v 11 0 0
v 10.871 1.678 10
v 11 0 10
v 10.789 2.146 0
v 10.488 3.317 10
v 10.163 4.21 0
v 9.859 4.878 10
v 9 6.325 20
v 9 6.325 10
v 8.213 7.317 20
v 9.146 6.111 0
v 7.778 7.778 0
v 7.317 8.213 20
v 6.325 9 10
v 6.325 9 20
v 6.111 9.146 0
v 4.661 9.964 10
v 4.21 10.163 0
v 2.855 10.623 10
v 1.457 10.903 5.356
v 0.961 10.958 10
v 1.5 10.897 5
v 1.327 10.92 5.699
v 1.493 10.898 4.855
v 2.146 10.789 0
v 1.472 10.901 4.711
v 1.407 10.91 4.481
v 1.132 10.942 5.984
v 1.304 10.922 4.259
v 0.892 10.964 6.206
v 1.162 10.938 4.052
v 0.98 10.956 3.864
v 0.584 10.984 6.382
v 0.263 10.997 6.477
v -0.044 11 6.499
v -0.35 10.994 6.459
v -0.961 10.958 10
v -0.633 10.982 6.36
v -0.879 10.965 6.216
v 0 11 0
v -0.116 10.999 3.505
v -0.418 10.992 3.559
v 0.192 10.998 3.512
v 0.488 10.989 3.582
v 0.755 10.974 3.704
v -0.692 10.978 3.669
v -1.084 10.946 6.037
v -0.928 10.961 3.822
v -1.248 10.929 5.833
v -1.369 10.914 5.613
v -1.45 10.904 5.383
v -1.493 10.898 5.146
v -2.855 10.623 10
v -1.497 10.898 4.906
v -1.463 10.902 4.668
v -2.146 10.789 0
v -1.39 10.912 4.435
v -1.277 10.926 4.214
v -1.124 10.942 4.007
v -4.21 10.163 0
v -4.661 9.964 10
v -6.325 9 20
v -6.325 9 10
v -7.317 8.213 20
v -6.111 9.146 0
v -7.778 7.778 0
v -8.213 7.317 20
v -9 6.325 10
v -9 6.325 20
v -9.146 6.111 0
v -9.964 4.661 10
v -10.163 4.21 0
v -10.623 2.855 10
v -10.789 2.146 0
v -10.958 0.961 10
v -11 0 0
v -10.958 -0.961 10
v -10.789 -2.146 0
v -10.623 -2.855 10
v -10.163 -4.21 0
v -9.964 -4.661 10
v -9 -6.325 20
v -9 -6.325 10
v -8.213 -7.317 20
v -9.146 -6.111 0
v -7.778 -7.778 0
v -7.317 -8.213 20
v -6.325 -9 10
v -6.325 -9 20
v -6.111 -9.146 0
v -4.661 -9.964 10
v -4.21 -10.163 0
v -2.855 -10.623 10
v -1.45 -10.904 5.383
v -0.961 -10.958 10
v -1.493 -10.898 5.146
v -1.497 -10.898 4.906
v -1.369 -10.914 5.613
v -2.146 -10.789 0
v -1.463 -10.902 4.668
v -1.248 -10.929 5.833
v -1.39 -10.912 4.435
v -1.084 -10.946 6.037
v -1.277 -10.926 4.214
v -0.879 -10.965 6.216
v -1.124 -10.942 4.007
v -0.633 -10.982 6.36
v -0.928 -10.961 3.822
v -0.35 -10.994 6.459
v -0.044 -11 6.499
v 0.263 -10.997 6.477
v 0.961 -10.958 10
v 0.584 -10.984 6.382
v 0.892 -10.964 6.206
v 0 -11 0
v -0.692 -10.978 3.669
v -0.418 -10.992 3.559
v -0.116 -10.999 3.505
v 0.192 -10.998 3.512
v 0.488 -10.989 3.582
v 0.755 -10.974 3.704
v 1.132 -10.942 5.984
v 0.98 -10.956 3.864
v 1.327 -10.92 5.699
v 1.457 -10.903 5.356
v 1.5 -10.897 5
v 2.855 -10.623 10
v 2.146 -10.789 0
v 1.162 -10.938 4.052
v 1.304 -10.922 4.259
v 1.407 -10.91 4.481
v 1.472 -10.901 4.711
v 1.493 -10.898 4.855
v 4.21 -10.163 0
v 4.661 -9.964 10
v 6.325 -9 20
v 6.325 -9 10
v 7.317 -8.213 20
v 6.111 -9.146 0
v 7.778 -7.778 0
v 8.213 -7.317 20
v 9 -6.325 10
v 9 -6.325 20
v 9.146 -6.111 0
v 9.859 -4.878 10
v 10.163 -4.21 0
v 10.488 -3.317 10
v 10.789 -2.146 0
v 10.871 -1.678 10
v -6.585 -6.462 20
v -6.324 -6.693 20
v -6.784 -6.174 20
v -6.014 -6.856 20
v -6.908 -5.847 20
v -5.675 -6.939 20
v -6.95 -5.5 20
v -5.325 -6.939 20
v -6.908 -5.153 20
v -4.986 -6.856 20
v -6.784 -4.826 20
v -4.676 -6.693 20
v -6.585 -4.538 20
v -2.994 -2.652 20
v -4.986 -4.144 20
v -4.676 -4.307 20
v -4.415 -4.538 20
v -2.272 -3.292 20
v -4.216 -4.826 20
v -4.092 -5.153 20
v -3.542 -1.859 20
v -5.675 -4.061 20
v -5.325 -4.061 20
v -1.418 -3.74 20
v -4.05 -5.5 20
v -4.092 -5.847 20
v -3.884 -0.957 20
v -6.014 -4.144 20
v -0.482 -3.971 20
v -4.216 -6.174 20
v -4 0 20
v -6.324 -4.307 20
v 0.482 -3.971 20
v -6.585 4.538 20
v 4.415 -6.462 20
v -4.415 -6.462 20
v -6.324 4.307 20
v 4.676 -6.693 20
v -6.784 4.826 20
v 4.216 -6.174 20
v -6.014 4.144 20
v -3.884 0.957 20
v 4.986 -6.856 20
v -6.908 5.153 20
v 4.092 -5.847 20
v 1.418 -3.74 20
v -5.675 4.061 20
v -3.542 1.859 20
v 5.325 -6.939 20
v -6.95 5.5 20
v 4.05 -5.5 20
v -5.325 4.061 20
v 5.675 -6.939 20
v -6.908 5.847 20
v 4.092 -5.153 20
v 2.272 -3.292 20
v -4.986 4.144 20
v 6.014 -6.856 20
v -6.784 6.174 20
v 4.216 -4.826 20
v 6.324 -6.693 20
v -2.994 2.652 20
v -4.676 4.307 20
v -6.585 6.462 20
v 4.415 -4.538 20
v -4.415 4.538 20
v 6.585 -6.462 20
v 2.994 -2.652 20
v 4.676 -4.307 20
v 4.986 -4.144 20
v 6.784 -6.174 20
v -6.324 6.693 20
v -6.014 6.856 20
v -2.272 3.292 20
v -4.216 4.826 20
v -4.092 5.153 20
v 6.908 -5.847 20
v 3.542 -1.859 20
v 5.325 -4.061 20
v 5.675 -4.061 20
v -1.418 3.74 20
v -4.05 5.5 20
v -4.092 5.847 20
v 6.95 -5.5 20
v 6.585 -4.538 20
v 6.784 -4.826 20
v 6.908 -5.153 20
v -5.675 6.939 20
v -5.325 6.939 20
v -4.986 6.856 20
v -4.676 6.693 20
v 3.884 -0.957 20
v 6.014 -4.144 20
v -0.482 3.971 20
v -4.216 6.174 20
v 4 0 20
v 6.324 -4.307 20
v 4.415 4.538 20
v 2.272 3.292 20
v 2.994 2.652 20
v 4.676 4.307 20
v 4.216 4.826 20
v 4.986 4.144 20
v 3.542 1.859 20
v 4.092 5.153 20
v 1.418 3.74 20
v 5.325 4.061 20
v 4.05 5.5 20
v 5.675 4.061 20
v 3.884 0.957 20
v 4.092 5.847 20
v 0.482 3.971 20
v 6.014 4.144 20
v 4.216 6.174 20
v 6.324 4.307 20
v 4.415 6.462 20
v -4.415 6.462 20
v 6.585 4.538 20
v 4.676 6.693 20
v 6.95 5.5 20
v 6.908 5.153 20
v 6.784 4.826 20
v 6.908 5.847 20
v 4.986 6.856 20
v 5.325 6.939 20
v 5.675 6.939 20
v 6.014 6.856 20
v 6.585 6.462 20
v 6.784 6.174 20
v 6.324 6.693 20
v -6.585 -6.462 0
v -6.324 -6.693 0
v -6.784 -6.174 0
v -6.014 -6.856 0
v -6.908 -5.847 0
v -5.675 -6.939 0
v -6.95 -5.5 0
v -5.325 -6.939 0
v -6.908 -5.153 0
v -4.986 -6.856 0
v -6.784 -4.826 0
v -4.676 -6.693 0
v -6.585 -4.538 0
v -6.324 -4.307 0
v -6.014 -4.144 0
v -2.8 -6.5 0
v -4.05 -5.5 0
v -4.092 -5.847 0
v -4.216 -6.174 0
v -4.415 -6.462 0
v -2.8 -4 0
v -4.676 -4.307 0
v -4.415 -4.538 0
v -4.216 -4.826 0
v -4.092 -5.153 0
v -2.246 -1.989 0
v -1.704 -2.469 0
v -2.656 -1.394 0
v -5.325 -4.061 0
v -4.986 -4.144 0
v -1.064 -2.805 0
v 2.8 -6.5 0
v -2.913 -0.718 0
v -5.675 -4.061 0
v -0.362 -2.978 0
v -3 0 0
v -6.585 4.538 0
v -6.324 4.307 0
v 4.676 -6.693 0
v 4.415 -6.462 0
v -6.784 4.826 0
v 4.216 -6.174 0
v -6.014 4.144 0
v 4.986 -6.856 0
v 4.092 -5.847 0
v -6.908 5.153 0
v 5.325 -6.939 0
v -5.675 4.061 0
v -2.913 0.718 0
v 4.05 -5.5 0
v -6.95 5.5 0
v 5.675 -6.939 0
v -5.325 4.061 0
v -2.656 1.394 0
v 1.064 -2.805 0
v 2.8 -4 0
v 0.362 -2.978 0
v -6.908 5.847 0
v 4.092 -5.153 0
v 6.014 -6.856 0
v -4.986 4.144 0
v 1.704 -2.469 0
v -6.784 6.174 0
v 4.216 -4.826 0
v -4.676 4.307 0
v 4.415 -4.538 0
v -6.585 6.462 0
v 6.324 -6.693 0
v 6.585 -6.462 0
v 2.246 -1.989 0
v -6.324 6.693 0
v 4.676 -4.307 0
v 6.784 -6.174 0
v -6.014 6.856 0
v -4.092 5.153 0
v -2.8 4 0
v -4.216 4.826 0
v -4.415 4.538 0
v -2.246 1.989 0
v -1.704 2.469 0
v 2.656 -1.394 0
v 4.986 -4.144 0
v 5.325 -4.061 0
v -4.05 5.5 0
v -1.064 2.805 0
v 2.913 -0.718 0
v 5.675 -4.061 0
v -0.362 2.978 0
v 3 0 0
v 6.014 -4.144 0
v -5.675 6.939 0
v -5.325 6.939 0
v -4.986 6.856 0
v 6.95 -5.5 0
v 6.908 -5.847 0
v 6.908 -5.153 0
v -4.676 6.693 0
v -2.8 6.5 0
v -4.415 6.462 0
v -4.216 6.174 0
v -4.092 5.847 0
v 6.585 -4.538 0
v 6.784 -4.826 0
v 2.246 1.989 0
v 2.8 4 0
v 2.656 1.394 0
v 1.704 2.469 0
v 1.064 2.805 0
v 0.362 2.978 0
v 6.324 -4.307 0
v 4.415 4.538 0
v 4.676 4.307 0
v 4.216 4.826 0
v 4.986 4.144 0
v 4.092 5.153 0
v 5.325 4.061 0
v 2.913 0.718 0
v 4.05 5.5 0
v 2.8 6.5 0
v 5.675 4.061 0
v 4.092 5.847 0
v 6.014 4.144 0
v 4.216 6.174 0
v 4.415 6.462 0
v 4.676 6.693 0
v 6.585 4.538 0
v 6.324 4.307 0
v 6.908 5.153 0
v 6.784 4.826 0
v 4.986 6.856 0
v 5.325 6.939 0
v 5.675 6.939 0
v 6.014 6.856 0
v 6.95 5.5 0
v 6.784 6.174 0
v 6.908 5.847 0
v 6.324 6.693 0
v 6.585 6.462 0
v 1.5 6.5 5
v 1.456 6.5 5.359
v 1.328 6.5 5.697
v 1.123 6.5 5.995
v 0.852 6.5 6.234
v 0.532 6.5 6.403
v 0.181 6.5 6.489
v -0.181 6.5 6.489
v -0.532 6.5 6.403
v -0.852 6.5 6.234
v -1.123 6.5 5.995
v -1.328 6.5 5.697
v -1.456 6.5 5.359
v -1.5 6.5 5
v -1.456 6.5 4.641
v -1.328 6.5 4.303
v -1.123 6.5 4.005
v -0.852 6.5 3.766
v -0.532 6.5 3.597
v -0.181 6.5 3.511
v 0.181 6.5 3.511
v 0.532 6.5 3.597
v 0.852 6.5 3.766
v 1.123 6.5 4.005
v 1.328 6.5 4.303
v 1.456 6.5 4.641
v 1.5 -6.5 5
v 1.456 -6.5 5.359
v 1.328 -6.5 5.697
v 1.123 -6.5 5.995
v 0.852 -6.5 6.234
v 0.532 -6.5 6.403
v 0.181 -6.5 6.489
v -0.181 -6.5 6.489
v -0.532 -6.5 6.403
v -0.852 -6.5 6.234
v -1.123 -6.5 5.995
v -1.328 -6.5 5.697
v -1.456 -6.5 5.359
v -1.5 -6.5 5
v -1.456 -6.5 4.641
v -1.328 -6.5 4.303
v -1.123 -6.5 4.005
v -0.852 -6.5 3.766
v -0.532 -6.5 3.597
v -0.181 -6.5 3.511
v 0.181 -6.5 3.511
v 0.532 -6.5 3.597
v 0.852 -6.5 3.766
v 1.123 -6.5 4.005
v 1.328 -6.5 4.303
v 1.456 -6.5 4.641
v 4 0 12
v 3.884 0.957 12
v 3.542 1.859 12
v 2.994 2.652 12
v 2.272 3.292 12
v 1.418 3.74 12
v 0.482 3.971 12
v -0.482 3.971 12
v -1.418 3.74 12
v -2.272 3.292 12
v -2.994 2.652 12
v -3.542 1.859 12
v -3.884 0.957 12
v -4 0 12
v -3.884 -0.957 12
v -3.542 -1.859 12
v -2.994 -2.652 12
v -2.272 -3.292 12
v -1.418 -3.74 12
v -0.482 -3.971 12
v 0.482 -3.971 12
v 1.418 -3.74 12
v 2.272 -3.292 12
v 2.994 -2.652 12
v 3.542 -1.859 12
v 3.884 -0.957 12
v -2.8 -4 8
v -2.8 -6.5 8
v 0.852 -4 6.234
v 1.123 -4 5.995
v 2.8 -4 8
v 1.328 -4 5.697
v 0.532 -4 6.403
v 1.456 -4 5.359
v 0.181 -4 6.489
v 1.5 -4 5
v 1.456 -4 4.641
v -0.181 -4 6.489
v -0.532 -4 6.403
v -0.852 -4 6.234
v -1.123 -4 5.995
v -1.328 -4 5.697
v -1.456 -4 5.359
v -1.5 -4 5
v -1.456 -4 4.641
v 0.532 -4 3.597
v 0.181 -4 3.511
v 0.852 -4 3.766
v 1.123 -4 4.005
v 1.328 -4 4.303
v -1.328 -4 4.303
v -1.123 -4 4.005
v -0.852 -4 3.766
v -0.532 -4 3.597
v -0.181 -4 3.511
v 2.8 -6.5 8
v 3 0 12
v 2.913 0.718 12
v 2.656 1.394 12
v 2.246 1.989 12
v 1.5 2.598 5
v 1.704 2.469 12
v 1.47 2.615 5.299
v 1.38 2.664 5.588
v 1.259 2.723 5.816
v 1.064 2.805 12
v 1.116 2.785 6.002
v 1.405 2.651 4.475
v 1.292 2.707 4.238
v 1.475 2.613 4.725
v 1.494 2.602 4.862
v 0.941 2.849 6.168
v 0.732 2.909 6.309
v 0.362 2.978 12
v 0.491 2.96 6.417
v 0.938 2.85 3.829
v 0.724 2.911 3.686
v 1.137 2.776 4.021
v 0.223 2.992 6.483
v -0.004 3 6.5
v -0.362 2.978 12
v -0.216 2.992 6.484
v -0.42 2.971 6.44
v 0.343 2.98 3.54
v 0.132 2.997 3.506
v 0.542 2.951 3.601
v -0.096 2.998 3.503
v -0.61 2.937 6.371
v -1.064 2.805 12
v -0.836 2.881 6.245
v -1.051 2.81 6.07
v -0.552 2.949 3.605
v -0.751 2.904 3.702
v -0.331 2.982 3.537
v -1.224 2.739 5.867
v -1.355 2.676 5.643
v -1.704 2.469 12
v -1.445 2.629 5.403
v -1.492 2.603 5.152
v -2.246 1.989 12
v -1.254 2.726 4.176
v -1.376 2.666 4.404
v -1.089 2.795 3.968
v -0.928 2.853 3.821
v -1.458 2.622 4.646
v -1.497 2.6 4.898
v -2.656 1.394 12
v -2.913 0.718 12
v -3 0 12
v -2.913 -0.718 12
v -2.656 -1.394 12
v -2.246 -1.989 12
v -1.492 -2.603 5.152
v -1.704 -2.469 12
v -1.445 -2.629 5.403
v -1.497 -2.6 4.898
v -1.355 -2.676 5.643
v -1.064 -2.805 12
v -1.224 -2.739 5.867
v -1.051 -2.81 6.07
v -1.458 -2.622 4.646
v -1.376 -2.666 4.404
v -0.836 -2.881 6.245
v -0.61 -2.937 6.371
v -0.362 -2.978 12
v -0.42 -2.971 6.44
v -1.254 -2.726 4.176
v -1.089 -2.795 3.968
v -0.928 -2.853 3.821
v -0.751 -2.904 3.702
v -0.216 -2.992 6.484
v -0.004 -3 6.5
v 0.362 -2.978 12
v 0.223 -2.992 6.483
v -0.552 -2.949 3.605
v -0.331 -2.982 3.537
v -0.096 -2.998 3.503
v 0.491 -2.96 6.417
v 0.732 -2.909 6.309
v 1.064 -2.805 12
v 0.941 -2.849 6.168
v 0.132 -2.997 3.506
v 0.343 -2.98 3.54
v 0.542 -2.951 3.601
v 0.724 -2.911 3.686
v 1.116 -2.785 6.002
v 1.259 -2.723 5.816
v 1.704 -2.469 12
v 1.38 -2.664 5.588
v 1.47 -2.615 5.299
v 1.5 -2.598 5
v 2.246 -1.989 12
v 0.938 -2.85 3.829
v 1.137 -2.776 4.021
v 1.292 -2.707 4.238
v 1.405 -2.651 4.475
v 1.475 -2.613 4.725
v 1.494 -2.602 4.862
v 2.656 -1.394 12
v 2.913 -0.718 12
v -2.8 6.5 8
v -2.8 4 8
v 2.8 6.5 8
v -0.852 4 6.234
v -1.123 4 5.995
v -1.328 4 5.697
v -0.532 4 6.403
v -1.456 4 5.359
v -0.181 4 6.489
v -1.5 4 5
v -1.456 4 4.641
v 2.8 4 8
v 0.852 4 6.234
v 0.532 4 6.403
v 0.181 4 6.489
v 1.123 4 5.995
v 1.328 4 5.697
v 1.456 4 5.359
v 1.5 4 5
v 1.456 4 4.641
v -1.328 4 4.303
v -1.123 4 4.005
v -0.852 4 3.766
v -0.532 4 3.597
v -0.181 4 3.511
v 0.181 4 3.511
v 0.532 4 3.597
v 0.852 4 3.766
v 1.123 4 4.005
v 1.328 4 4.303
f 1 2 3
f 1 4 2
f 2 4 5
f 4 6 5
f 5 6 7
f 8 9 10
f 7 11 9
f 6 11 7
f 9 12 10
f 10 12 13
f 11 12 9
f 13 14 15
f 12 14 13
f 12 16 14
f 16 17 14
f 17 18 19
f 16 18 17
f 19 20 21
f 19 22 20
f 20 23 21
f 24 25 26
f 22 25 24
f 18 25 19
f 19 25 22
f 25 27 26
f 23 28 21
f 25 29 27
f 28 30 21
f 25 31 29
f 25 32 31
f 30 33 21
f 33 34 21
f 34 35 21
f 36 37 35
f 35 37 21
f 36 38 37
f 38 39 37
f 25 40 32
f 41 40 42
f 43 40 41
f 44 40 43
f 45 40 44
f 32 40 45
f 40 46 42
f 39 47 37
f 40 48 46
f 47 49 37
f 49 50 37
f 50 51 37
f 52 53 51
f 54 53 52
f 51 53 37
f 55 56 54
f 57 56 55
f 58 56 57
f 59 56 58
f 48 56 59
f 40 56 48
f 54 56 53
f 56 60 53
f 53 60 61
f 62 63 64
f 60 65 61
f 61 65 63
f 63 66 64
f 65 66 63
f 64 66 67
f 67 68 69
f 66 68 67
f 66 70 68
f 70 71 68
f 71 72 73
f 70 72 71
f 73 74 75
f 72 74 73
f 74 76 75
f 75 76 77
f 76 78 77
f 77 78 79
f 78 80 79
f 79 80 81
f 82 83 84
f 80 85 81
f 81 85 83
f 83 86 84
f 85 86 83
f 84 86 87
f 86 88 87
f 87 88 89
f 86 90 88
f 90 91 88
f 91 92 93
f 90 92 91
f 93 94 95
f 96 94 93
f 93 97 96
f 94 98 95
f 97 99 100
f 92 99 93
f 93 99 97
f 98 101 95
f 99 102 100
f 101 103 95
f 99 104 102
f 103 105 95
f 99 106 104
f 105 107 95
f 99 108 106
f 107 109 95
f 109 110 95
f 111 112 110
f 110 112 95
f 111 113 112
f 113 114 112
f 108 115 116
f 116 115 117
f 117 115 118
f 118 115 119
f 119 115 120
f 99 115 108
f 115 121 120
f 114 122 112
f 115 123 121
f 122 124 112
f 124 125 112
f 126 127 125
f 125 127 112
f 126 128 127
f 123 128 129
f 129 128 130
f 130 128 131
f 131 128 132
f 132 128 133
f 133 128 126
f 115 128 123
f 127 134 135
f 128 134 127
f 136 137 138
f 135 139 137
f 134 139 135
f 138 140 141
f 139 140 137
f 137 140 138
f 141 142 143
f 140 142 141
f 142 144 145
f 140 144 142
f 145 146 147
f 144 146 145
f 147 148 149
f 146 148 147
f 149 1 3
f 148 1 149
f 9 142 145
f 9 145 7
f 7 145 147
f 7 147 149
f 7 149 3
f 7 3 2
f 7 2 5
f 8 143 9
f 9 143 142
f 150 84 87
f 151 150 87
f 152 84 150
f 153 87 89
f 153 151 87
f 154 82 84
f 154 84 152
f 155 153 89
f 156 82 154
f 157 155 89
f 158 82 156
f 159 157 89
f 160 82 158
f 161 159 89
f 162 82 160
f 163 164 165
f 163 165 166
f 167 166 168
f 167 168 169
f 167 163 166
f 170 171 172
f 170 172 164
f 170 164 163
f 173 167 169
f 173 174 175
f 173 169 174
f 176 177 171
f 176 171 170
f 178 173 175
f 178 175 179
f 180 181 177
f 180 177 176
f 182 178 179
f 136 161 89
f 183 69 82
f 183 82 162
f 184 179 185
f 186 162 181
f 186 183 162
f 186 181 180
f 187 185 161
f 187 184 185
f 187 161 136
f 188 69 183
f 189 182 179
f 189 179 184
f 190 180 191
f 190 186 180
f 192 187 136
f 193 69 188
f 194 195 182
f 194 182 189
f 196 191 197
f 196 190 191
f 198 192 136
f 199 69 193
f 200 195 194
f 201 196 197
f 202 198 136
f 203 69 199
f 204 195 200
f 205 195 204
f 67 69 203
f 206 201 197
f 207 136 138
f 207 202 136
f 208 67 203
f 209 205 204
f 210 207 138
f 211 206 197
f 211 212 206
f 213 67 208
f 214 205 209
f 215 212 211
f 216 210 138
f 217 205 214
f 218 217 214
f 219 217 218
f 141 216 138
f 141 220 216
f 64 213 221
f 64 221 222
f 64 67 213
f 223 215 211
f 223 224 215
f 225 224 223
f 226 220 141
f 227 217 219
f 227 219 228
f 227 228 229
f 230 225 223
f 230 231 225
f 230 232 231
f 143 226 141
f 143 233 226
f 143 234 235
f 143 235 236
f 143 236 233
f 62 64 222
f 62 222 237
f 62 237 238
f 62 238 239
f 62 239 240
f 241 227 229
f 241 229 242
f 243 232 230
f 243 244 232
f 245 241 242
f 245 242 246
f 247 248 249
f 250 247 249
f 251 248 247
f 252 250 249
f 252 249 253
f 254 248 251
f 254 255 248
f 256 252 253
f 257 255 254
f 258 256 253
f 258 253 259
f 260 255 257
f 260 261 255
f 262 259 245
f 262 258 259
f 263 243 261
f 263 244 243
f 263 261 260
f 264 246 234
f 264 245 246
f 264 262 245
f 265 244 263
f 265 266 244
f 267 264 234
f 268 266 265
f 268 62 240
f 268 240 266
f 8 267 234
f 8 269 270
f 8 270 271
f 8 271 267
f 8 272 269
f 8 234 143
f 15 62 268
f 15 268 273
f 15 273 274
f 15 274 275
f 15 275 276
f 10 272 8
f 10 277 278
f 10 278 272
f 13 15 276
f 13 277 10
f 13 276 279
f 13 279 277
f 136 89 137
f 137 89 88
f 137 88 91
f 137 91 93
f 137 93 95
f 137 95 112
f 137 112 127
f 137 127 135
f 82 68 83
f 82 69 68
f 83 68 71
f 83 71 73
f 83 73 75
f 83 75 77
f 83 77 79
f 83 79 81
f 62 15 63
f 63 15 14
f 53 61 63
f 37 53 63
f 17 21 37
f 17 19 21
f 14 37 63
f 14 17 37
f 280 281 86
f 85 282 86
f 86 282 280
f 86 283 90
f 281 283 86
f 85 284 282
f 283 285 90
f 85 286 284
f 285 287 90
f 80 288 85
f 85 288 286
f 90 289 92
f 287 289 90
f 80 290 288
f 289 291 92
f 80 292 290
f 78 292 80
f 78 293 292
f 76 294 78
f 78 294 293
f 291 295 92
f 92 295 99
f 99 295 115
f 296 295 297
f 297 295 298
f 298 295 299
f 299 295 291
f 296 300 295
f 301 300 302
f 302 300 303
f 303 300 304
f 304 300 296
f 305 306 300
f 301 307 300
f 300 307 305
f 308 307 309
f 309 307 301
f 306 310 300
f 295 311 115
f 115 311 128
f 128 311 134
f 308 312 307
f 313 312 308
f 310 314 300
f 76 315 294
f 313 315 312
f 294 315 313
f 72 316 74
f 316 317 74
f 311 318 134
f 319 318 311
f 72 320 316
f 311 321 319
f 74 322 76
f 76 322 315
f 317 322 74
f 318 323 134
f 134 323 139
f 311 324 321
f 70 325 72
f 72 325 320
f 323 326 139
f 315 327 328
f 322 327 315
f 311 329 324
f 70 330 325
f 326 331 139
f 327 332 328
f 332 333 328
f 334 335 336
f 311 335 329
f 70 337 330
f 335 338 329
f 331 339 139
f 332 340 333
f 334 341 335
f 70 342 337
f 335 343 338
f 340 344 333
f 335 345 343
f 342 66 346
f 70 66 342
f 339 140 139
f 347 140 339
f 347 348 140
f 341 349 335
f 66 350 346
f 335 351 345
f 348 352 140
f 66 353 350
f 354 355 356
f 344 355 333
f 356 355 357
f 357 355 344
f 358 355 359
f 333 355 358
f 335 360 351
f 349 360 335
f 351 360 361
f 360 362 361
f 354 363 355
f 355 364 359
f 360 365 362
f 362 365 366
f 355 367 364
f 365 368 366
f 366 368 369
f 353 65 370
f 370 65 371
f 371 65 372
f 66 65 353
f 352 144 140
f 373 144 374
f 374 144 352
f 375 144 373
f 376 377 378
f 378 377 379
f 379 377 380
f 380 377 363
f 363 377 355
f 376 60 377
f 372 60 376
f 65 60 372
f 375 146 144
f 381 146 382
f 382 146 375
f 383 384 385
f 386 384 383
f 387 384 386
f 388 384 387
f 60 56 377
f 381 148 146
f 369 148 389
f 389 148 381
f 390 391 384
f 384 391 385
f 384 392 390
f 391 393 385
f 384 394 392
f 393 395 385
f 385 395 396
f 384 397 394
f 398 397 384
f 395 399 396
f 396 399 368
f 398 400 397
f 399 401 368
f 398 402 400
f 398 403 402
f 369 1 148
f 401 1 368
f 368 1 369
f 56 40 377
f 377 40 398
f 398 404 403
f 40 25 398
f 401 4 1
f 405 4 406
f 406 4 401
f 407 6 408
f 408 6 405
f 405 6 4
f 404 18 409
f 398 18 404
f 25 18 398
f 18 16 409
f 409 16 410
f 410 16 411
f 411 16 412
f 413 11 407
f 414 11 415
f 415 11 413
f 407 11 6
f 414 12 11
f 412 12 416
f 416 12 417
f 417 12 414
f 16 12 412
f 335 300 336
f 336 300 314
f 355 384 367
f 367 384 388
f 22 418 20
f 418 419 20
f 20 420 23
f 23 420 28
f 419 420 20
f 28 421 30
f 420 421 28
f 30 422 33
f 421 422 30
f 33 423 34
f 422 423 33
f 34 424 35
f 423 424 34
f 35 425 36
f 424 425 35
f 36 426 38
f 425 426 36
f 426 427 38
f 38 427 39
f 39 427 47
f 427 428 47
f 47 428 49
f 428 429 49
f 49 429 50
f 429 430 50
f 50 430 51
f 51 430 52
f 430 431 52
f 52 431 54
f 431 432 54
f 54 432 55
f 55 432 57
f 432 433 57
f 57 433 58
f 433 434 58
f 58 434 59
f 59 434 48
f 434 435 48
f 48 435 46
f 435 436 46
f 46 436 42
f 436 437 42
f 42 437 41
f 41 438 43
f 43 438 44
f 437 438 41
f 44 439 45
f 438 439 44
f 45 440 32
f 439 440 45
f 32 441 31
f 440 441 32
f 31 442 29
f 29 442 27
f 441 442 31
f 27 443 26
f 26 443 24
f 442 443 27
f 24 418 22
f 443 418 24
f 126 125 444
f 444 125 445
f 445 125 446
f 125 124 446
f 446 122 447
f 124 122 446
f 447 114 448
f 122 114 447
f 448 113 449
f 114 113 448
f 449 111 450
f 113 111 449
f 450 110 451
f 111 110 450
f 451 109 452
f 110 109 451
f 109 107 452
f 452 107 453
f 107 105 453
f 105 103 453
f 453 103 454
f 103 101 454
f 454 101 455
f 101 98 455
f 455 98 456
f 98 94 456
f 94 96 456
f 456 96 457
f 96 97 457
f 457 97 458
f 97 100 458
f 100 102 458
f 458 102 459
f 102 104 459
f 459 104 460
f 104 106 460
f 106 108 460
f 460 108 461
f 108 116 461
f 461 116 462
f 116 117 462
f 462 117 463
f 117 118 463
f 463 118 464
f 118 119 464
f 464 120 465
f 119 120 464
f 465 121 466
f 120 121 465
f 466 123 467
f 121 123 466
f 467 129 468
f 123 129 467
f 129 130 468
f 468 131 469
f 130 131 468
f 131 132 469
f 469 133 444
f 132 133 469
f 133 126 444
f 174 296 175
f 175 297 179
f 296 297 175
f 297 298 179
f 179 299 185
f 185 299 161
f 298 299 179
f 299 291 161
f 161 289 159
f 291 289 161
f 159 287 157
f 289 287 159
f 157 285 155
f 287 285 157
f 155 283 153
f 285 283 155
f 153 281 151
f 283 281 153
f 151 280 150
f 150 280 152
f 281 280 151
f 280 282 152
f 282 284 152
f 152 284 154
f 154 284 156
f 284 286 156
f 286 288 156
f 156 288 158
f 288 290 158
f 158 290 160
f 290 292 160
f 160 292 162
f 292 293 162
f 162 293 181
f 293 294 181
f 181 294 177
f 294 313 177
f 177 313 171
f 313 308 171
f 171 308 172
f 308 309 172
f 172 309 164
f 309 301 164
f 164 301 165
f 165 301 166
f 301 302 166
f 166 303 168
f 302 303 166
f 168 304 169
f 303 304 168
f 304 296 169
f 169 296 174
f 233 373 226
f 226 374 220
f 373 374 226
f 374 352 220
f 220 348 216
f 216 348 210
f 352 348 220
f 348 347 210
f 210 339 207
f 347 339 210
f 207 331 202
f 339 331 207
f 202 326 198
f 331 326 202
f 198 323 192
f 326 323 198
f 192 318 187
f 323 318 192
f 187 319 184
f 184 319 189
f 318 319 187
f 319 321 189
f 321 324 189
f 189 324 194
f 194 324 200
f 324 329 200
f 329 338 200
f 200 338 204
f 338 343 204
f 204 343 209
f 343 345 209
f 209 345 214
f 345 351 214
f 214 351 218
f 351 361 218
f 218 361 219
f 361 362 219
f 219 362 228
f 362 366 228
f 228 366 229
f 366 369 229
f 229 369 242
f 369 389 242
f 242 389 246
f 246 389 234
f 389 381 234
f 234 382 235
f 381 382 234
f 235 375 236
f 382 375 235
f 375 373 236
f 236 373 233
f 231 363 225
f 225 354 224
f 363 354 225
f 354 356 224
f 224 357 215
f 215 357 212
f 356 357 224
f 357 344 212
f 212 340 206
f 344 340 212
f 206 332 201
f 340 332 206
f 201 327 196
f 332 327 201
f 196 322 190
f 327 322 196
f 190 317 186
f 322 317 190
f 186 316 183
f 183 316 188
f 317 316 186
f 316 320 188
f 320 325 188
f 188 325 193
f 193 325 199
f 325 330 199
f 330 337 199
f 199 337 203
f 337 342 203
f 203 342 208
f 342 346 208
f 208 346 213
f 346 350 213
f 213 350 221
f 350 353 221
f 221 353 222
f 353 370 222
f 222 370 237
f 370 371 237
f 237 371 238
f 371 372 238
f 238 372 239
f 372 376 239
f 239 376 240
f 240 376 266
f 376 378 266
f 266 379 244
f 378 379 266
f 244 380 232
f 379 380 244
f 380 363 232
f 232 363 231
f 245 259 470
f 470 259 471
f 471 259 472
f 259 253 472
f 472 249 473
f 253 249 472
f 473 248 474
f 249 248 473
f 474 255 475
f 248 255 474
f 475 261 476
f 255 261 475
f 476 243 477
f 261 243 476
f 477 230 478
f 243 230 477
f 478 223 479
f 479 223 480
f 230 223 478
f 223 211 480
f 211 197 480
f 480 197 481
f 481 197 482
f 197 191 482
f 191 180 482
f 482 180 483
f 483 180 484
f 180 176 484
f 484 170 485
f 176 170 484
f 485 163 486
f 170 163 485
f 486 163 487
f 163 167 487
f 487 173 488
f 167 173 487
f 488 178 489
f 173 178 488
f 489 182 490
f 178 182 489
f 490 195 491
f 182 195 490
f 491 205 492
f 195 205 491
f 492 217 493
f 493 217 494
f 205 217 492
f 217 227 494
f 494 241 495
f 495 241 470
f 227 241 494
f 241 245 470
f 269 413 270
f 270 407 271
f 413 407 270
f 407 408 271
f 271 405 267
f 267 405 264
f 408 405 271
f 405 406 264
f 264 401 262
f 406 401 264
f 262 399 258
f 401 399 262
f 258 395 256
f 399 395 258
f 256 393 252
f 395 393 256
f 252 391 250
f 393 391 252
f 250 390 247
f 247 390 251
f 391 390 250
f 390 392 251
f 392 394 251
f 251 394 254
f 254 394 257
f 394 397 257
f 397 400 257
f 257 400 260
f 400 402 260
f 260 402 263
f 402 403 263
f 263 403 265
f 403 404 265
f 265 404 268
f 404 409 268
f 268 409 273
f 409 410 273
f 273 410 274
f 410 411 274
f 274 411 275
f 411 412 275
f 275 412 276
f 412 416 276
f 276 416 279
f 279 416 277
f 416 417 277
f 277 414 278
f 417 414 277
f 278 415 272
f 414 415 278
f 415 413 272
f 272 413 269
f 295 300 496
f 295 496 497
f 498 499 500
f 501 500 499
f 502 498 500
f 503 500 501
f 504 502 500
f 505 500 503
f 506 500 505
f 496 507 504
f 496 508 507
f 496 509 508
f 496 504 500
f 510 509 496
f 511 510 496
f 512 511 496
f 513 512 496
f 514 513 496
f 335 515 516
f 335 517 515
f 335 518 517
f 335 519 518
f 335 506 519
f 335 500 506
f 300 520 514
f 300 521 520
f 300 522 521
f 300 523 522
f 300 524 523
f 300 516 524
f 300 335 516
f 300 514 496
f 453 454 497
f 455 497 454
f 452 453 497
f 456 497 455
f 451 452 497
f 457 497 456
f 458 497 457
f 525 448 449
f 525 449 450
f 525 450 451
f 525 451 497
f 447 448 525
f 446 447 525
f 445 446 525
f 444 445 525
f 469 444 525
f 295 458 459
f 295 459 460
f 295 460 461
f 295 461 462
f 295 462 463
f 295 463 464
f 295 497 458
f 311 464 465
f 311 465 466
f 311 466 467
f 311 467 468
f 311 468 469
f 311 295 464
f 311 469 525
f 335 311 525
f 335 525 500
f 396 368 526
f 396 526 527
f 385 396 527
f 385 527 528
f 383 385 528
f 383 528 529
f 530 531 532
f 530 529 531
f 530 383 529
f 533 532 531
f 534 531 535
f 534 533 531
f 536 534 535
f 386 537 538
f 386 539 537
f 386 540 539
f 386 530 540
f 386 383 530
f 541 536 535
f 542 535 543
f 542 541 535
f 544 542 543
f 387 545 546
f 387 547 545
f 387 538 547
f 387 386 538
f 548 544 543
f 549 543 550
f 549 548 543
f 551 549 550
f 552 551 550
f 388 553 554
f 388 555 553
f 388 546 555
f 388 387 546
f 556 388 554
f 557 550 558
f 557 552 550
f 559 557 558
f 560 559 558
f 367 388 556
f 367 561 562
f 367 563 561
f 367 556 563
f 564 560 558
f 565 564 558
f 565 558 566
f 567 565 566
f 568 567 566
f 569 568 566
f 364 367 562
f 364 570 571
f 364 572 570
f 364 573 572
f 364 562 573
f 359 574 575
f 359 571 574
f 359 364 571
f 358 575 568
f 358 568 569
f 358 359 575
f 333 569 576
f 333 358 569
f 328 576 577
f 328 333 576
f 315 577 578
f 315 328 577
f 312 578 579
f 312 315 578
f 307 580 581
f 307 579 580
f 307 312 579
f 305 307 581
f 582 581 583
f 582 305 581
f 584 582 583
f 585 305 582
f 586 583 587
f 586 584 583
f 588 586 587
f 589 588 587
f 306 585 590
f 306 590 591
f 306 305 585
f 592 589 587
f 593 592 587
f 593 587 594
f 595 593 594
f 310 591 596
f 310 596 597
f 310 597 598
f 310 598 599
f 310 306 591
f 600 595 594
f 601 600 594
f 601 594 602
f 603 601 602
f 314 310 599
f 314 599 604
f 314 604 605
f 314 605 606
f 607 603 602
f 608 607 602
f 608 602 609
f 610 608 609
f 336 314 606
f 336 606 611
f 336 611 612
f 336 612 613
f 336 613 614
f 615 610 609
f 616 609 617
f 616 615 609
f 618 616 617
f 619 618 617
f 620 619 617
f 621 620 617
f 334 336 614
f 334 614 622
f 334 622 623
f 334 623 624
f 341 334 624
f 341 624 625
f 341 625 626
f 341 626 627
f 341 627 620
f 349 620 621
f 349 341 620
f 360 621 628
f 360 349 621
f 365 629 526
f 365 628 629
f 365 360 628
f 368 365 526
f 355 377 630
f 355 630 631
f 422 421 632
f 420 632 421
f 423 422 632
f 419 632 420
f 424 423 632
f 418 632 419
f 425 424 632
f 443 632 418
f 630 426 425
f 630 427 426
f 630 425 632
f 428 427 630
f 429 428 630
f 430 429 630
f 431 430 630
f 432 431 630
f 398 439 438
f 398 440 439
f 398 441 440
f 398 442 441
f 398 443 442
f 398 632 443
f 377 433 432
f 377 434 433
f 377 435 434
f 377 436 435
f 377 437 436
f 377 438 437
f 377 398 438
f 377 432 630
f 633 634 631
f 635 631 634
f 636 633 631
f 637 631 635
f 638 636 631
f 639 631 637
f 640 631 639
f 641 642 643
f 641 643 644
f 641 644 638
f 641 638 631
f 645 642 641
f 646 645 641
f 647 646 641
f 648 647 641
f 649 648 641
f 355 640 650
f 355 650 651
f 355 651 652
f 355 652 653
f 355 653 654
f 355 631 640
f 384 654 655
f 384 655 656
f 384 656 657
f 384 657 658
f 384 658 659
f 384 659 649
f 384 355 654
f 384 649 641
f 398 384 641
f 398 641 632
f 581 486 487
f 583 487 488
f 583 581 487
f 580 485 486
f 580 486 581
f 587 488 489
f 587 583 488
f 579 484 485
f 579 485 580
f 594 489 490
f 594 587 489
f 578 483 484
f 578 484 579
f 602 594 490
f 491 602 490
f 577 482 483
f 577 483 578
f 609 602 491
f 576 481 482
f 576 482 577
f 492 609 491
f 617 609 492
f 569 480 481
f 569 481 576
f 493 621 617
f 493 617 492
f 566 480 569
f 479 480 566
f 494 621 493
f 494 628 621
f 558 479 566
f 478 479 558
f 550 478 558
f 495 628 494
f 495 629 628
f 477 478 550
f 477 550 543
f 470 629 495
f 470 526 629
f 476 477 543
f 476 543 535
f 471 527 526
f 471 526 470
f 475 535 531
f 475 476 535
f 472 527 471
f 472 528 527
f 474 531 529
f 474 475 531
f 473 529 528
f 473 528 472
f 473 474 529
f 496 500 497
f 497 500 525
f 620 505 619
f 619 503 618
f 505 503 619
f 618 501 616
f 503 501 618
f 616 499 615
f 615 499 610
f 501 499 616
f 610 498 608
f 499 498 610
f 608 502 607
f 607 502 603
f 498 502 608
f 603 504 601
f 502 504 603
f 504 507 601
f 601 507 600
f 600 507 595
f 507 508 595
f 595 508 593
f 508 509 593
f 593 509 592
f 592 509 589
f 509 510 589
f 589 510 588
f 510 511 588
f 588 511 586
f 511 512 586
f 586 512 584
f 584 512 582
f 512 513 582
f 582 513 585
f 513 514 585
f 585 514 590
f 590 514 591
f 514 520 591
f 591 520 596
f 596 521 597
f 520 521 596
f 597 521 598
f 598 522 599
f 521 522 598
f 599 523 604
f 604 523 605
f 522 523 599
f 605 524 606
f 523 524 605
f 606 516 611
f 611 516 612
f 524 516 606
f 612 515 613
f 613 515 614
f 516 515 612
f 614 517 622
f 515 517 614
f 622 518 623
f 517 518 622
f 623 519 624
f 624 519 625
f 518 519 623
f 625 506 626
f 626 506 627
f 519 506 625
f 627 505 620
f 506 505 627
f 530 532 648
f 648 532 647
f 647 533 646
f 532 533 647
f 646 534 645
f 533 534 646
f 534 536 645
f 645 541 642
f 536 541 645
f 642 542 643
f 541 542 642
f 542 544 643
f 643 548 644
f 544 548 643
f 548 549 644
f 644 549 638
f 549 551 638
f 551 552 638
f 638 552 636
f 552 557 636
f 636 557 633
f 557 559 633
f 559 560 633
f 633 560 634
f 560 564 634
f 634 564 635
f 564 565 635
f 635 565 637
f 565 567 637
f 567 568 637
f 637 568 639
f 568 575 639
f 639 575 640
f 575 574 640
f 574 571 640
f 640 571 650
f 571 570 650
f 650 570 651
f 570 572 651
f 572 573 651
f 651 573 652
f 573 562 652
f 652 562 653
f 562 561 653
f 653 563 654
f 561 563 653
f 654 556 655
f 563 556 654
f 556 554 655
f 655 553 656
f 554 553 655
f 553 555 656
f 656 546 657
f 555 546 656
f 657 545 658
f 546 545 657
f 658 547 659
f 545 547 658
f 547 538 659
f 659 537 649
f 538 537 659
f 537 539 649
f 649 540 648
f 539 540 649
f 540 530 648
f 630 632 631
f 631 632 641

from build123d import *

# Parameters (mm, degrees)
SKETCH_R             = 11
SKETCH_R_2           = 3
PAD_DEPTH            = 20
POCKET_DEPTH         = 10
SKETCH002_R          = 4
POCKET001_DEPTH      = 8
SKETCH003_R          = 1.5
POCKET002_DEPTH      = 11.001
POCKET002_DEPTH_BACK = -11.001
SKETCH004_W          = 2.5
SKETCH004_H          = 5.6
POCKET003_DEPTH      = 8
SKETCH005_R          = 1.45
POCKET004_DEPTH      = 20.001


with BuildPart() as part:
    # Sketch → Pad (new body)
    with BuildSketch(Plane.XY):
        Circle(SKETCH_R)
        Circle(SKETCH_R_2, mode=Mode.SUBTRACT)
    extrude(amount=PAD_DEPTH)

    # Sketch001 (on Face4 of Pad) → Pocket (cut)
    with BuildSketch(Plane.XY.offset(20)):
        Polygon((-15, -8), (-9, -8), (-9, 9), (9, 9), (9, -9), (-8, -9), (-8, -15), (15, -15), (15, 15), (-15, 15), align=None)
    extrude(amount=-POCKET_DEPTH, mode=Mode.SUBTRACT)

    # Sketch002 (on Face5 of Pocket) → Pocket001 (cut)
    with BuildSketch(Plane.XY.offset(20)):
        Circle(SKETCH002_R)
    extrude(amount=-POCKET001_DEPTH, mode=Mode.SUBTRACT)

    # Sketch003 → Pocket002 (cut, two sides)
    with BuildSketch(Plane.XZ) as pocket002_sk:
        with Locations((0, 5)):
            Circle(SKETCH003_R)
    extrude(amount=-POCKET002_DEPTH, mode=Mode.SUBTRACT)
    extrude(pocket002_sk.sketch, amount=-POCKET002_DEPTH_BACK, mode=Mode.SUBTRACT)

    # Sketch004 (on Face11 of Pocket002) → Pocket003 (cut)
    with BuildSketch(Plane(origin=(0, 0, 0), x_dir=(0, -1, 0), z_dir=(0, 0, -1))):
        with Locations((-5.25, 0)):
            Rectangle(SKETCH004_W, SKETCH004_H)
        with Locations((5.25, 0)):
            Rectangle(SKETCH004_W, SKETCH004_H)
    extrude(amount=-POCKET003_DEPTH, mode=Mode.SUBTRACT)

    # Sketch005 (on Face11 of Pocket003) → Pocket004 (cut, through all)
    with BuildSketch(Plane(origin=(0, 0, 0), x_dir=(1, 0, 0), z_dir=(0, 0, -1))):
        with Locations((-5.5, 5.5)):
            Circle(SKETCH005_R)
        with Locations((-5.5, -5.5)):
            Circle(SKETCH005_R)
        with Locations((5.5, -5.5)):
            Circle(SKETCH005_R)
        with Locations((5.5, 5.5)):
            Circle(SKETCH005_R)
    extrude(amount=-POCKET004_DEPTH, mode=Mode.SUBTRACT)


solid = part.part
